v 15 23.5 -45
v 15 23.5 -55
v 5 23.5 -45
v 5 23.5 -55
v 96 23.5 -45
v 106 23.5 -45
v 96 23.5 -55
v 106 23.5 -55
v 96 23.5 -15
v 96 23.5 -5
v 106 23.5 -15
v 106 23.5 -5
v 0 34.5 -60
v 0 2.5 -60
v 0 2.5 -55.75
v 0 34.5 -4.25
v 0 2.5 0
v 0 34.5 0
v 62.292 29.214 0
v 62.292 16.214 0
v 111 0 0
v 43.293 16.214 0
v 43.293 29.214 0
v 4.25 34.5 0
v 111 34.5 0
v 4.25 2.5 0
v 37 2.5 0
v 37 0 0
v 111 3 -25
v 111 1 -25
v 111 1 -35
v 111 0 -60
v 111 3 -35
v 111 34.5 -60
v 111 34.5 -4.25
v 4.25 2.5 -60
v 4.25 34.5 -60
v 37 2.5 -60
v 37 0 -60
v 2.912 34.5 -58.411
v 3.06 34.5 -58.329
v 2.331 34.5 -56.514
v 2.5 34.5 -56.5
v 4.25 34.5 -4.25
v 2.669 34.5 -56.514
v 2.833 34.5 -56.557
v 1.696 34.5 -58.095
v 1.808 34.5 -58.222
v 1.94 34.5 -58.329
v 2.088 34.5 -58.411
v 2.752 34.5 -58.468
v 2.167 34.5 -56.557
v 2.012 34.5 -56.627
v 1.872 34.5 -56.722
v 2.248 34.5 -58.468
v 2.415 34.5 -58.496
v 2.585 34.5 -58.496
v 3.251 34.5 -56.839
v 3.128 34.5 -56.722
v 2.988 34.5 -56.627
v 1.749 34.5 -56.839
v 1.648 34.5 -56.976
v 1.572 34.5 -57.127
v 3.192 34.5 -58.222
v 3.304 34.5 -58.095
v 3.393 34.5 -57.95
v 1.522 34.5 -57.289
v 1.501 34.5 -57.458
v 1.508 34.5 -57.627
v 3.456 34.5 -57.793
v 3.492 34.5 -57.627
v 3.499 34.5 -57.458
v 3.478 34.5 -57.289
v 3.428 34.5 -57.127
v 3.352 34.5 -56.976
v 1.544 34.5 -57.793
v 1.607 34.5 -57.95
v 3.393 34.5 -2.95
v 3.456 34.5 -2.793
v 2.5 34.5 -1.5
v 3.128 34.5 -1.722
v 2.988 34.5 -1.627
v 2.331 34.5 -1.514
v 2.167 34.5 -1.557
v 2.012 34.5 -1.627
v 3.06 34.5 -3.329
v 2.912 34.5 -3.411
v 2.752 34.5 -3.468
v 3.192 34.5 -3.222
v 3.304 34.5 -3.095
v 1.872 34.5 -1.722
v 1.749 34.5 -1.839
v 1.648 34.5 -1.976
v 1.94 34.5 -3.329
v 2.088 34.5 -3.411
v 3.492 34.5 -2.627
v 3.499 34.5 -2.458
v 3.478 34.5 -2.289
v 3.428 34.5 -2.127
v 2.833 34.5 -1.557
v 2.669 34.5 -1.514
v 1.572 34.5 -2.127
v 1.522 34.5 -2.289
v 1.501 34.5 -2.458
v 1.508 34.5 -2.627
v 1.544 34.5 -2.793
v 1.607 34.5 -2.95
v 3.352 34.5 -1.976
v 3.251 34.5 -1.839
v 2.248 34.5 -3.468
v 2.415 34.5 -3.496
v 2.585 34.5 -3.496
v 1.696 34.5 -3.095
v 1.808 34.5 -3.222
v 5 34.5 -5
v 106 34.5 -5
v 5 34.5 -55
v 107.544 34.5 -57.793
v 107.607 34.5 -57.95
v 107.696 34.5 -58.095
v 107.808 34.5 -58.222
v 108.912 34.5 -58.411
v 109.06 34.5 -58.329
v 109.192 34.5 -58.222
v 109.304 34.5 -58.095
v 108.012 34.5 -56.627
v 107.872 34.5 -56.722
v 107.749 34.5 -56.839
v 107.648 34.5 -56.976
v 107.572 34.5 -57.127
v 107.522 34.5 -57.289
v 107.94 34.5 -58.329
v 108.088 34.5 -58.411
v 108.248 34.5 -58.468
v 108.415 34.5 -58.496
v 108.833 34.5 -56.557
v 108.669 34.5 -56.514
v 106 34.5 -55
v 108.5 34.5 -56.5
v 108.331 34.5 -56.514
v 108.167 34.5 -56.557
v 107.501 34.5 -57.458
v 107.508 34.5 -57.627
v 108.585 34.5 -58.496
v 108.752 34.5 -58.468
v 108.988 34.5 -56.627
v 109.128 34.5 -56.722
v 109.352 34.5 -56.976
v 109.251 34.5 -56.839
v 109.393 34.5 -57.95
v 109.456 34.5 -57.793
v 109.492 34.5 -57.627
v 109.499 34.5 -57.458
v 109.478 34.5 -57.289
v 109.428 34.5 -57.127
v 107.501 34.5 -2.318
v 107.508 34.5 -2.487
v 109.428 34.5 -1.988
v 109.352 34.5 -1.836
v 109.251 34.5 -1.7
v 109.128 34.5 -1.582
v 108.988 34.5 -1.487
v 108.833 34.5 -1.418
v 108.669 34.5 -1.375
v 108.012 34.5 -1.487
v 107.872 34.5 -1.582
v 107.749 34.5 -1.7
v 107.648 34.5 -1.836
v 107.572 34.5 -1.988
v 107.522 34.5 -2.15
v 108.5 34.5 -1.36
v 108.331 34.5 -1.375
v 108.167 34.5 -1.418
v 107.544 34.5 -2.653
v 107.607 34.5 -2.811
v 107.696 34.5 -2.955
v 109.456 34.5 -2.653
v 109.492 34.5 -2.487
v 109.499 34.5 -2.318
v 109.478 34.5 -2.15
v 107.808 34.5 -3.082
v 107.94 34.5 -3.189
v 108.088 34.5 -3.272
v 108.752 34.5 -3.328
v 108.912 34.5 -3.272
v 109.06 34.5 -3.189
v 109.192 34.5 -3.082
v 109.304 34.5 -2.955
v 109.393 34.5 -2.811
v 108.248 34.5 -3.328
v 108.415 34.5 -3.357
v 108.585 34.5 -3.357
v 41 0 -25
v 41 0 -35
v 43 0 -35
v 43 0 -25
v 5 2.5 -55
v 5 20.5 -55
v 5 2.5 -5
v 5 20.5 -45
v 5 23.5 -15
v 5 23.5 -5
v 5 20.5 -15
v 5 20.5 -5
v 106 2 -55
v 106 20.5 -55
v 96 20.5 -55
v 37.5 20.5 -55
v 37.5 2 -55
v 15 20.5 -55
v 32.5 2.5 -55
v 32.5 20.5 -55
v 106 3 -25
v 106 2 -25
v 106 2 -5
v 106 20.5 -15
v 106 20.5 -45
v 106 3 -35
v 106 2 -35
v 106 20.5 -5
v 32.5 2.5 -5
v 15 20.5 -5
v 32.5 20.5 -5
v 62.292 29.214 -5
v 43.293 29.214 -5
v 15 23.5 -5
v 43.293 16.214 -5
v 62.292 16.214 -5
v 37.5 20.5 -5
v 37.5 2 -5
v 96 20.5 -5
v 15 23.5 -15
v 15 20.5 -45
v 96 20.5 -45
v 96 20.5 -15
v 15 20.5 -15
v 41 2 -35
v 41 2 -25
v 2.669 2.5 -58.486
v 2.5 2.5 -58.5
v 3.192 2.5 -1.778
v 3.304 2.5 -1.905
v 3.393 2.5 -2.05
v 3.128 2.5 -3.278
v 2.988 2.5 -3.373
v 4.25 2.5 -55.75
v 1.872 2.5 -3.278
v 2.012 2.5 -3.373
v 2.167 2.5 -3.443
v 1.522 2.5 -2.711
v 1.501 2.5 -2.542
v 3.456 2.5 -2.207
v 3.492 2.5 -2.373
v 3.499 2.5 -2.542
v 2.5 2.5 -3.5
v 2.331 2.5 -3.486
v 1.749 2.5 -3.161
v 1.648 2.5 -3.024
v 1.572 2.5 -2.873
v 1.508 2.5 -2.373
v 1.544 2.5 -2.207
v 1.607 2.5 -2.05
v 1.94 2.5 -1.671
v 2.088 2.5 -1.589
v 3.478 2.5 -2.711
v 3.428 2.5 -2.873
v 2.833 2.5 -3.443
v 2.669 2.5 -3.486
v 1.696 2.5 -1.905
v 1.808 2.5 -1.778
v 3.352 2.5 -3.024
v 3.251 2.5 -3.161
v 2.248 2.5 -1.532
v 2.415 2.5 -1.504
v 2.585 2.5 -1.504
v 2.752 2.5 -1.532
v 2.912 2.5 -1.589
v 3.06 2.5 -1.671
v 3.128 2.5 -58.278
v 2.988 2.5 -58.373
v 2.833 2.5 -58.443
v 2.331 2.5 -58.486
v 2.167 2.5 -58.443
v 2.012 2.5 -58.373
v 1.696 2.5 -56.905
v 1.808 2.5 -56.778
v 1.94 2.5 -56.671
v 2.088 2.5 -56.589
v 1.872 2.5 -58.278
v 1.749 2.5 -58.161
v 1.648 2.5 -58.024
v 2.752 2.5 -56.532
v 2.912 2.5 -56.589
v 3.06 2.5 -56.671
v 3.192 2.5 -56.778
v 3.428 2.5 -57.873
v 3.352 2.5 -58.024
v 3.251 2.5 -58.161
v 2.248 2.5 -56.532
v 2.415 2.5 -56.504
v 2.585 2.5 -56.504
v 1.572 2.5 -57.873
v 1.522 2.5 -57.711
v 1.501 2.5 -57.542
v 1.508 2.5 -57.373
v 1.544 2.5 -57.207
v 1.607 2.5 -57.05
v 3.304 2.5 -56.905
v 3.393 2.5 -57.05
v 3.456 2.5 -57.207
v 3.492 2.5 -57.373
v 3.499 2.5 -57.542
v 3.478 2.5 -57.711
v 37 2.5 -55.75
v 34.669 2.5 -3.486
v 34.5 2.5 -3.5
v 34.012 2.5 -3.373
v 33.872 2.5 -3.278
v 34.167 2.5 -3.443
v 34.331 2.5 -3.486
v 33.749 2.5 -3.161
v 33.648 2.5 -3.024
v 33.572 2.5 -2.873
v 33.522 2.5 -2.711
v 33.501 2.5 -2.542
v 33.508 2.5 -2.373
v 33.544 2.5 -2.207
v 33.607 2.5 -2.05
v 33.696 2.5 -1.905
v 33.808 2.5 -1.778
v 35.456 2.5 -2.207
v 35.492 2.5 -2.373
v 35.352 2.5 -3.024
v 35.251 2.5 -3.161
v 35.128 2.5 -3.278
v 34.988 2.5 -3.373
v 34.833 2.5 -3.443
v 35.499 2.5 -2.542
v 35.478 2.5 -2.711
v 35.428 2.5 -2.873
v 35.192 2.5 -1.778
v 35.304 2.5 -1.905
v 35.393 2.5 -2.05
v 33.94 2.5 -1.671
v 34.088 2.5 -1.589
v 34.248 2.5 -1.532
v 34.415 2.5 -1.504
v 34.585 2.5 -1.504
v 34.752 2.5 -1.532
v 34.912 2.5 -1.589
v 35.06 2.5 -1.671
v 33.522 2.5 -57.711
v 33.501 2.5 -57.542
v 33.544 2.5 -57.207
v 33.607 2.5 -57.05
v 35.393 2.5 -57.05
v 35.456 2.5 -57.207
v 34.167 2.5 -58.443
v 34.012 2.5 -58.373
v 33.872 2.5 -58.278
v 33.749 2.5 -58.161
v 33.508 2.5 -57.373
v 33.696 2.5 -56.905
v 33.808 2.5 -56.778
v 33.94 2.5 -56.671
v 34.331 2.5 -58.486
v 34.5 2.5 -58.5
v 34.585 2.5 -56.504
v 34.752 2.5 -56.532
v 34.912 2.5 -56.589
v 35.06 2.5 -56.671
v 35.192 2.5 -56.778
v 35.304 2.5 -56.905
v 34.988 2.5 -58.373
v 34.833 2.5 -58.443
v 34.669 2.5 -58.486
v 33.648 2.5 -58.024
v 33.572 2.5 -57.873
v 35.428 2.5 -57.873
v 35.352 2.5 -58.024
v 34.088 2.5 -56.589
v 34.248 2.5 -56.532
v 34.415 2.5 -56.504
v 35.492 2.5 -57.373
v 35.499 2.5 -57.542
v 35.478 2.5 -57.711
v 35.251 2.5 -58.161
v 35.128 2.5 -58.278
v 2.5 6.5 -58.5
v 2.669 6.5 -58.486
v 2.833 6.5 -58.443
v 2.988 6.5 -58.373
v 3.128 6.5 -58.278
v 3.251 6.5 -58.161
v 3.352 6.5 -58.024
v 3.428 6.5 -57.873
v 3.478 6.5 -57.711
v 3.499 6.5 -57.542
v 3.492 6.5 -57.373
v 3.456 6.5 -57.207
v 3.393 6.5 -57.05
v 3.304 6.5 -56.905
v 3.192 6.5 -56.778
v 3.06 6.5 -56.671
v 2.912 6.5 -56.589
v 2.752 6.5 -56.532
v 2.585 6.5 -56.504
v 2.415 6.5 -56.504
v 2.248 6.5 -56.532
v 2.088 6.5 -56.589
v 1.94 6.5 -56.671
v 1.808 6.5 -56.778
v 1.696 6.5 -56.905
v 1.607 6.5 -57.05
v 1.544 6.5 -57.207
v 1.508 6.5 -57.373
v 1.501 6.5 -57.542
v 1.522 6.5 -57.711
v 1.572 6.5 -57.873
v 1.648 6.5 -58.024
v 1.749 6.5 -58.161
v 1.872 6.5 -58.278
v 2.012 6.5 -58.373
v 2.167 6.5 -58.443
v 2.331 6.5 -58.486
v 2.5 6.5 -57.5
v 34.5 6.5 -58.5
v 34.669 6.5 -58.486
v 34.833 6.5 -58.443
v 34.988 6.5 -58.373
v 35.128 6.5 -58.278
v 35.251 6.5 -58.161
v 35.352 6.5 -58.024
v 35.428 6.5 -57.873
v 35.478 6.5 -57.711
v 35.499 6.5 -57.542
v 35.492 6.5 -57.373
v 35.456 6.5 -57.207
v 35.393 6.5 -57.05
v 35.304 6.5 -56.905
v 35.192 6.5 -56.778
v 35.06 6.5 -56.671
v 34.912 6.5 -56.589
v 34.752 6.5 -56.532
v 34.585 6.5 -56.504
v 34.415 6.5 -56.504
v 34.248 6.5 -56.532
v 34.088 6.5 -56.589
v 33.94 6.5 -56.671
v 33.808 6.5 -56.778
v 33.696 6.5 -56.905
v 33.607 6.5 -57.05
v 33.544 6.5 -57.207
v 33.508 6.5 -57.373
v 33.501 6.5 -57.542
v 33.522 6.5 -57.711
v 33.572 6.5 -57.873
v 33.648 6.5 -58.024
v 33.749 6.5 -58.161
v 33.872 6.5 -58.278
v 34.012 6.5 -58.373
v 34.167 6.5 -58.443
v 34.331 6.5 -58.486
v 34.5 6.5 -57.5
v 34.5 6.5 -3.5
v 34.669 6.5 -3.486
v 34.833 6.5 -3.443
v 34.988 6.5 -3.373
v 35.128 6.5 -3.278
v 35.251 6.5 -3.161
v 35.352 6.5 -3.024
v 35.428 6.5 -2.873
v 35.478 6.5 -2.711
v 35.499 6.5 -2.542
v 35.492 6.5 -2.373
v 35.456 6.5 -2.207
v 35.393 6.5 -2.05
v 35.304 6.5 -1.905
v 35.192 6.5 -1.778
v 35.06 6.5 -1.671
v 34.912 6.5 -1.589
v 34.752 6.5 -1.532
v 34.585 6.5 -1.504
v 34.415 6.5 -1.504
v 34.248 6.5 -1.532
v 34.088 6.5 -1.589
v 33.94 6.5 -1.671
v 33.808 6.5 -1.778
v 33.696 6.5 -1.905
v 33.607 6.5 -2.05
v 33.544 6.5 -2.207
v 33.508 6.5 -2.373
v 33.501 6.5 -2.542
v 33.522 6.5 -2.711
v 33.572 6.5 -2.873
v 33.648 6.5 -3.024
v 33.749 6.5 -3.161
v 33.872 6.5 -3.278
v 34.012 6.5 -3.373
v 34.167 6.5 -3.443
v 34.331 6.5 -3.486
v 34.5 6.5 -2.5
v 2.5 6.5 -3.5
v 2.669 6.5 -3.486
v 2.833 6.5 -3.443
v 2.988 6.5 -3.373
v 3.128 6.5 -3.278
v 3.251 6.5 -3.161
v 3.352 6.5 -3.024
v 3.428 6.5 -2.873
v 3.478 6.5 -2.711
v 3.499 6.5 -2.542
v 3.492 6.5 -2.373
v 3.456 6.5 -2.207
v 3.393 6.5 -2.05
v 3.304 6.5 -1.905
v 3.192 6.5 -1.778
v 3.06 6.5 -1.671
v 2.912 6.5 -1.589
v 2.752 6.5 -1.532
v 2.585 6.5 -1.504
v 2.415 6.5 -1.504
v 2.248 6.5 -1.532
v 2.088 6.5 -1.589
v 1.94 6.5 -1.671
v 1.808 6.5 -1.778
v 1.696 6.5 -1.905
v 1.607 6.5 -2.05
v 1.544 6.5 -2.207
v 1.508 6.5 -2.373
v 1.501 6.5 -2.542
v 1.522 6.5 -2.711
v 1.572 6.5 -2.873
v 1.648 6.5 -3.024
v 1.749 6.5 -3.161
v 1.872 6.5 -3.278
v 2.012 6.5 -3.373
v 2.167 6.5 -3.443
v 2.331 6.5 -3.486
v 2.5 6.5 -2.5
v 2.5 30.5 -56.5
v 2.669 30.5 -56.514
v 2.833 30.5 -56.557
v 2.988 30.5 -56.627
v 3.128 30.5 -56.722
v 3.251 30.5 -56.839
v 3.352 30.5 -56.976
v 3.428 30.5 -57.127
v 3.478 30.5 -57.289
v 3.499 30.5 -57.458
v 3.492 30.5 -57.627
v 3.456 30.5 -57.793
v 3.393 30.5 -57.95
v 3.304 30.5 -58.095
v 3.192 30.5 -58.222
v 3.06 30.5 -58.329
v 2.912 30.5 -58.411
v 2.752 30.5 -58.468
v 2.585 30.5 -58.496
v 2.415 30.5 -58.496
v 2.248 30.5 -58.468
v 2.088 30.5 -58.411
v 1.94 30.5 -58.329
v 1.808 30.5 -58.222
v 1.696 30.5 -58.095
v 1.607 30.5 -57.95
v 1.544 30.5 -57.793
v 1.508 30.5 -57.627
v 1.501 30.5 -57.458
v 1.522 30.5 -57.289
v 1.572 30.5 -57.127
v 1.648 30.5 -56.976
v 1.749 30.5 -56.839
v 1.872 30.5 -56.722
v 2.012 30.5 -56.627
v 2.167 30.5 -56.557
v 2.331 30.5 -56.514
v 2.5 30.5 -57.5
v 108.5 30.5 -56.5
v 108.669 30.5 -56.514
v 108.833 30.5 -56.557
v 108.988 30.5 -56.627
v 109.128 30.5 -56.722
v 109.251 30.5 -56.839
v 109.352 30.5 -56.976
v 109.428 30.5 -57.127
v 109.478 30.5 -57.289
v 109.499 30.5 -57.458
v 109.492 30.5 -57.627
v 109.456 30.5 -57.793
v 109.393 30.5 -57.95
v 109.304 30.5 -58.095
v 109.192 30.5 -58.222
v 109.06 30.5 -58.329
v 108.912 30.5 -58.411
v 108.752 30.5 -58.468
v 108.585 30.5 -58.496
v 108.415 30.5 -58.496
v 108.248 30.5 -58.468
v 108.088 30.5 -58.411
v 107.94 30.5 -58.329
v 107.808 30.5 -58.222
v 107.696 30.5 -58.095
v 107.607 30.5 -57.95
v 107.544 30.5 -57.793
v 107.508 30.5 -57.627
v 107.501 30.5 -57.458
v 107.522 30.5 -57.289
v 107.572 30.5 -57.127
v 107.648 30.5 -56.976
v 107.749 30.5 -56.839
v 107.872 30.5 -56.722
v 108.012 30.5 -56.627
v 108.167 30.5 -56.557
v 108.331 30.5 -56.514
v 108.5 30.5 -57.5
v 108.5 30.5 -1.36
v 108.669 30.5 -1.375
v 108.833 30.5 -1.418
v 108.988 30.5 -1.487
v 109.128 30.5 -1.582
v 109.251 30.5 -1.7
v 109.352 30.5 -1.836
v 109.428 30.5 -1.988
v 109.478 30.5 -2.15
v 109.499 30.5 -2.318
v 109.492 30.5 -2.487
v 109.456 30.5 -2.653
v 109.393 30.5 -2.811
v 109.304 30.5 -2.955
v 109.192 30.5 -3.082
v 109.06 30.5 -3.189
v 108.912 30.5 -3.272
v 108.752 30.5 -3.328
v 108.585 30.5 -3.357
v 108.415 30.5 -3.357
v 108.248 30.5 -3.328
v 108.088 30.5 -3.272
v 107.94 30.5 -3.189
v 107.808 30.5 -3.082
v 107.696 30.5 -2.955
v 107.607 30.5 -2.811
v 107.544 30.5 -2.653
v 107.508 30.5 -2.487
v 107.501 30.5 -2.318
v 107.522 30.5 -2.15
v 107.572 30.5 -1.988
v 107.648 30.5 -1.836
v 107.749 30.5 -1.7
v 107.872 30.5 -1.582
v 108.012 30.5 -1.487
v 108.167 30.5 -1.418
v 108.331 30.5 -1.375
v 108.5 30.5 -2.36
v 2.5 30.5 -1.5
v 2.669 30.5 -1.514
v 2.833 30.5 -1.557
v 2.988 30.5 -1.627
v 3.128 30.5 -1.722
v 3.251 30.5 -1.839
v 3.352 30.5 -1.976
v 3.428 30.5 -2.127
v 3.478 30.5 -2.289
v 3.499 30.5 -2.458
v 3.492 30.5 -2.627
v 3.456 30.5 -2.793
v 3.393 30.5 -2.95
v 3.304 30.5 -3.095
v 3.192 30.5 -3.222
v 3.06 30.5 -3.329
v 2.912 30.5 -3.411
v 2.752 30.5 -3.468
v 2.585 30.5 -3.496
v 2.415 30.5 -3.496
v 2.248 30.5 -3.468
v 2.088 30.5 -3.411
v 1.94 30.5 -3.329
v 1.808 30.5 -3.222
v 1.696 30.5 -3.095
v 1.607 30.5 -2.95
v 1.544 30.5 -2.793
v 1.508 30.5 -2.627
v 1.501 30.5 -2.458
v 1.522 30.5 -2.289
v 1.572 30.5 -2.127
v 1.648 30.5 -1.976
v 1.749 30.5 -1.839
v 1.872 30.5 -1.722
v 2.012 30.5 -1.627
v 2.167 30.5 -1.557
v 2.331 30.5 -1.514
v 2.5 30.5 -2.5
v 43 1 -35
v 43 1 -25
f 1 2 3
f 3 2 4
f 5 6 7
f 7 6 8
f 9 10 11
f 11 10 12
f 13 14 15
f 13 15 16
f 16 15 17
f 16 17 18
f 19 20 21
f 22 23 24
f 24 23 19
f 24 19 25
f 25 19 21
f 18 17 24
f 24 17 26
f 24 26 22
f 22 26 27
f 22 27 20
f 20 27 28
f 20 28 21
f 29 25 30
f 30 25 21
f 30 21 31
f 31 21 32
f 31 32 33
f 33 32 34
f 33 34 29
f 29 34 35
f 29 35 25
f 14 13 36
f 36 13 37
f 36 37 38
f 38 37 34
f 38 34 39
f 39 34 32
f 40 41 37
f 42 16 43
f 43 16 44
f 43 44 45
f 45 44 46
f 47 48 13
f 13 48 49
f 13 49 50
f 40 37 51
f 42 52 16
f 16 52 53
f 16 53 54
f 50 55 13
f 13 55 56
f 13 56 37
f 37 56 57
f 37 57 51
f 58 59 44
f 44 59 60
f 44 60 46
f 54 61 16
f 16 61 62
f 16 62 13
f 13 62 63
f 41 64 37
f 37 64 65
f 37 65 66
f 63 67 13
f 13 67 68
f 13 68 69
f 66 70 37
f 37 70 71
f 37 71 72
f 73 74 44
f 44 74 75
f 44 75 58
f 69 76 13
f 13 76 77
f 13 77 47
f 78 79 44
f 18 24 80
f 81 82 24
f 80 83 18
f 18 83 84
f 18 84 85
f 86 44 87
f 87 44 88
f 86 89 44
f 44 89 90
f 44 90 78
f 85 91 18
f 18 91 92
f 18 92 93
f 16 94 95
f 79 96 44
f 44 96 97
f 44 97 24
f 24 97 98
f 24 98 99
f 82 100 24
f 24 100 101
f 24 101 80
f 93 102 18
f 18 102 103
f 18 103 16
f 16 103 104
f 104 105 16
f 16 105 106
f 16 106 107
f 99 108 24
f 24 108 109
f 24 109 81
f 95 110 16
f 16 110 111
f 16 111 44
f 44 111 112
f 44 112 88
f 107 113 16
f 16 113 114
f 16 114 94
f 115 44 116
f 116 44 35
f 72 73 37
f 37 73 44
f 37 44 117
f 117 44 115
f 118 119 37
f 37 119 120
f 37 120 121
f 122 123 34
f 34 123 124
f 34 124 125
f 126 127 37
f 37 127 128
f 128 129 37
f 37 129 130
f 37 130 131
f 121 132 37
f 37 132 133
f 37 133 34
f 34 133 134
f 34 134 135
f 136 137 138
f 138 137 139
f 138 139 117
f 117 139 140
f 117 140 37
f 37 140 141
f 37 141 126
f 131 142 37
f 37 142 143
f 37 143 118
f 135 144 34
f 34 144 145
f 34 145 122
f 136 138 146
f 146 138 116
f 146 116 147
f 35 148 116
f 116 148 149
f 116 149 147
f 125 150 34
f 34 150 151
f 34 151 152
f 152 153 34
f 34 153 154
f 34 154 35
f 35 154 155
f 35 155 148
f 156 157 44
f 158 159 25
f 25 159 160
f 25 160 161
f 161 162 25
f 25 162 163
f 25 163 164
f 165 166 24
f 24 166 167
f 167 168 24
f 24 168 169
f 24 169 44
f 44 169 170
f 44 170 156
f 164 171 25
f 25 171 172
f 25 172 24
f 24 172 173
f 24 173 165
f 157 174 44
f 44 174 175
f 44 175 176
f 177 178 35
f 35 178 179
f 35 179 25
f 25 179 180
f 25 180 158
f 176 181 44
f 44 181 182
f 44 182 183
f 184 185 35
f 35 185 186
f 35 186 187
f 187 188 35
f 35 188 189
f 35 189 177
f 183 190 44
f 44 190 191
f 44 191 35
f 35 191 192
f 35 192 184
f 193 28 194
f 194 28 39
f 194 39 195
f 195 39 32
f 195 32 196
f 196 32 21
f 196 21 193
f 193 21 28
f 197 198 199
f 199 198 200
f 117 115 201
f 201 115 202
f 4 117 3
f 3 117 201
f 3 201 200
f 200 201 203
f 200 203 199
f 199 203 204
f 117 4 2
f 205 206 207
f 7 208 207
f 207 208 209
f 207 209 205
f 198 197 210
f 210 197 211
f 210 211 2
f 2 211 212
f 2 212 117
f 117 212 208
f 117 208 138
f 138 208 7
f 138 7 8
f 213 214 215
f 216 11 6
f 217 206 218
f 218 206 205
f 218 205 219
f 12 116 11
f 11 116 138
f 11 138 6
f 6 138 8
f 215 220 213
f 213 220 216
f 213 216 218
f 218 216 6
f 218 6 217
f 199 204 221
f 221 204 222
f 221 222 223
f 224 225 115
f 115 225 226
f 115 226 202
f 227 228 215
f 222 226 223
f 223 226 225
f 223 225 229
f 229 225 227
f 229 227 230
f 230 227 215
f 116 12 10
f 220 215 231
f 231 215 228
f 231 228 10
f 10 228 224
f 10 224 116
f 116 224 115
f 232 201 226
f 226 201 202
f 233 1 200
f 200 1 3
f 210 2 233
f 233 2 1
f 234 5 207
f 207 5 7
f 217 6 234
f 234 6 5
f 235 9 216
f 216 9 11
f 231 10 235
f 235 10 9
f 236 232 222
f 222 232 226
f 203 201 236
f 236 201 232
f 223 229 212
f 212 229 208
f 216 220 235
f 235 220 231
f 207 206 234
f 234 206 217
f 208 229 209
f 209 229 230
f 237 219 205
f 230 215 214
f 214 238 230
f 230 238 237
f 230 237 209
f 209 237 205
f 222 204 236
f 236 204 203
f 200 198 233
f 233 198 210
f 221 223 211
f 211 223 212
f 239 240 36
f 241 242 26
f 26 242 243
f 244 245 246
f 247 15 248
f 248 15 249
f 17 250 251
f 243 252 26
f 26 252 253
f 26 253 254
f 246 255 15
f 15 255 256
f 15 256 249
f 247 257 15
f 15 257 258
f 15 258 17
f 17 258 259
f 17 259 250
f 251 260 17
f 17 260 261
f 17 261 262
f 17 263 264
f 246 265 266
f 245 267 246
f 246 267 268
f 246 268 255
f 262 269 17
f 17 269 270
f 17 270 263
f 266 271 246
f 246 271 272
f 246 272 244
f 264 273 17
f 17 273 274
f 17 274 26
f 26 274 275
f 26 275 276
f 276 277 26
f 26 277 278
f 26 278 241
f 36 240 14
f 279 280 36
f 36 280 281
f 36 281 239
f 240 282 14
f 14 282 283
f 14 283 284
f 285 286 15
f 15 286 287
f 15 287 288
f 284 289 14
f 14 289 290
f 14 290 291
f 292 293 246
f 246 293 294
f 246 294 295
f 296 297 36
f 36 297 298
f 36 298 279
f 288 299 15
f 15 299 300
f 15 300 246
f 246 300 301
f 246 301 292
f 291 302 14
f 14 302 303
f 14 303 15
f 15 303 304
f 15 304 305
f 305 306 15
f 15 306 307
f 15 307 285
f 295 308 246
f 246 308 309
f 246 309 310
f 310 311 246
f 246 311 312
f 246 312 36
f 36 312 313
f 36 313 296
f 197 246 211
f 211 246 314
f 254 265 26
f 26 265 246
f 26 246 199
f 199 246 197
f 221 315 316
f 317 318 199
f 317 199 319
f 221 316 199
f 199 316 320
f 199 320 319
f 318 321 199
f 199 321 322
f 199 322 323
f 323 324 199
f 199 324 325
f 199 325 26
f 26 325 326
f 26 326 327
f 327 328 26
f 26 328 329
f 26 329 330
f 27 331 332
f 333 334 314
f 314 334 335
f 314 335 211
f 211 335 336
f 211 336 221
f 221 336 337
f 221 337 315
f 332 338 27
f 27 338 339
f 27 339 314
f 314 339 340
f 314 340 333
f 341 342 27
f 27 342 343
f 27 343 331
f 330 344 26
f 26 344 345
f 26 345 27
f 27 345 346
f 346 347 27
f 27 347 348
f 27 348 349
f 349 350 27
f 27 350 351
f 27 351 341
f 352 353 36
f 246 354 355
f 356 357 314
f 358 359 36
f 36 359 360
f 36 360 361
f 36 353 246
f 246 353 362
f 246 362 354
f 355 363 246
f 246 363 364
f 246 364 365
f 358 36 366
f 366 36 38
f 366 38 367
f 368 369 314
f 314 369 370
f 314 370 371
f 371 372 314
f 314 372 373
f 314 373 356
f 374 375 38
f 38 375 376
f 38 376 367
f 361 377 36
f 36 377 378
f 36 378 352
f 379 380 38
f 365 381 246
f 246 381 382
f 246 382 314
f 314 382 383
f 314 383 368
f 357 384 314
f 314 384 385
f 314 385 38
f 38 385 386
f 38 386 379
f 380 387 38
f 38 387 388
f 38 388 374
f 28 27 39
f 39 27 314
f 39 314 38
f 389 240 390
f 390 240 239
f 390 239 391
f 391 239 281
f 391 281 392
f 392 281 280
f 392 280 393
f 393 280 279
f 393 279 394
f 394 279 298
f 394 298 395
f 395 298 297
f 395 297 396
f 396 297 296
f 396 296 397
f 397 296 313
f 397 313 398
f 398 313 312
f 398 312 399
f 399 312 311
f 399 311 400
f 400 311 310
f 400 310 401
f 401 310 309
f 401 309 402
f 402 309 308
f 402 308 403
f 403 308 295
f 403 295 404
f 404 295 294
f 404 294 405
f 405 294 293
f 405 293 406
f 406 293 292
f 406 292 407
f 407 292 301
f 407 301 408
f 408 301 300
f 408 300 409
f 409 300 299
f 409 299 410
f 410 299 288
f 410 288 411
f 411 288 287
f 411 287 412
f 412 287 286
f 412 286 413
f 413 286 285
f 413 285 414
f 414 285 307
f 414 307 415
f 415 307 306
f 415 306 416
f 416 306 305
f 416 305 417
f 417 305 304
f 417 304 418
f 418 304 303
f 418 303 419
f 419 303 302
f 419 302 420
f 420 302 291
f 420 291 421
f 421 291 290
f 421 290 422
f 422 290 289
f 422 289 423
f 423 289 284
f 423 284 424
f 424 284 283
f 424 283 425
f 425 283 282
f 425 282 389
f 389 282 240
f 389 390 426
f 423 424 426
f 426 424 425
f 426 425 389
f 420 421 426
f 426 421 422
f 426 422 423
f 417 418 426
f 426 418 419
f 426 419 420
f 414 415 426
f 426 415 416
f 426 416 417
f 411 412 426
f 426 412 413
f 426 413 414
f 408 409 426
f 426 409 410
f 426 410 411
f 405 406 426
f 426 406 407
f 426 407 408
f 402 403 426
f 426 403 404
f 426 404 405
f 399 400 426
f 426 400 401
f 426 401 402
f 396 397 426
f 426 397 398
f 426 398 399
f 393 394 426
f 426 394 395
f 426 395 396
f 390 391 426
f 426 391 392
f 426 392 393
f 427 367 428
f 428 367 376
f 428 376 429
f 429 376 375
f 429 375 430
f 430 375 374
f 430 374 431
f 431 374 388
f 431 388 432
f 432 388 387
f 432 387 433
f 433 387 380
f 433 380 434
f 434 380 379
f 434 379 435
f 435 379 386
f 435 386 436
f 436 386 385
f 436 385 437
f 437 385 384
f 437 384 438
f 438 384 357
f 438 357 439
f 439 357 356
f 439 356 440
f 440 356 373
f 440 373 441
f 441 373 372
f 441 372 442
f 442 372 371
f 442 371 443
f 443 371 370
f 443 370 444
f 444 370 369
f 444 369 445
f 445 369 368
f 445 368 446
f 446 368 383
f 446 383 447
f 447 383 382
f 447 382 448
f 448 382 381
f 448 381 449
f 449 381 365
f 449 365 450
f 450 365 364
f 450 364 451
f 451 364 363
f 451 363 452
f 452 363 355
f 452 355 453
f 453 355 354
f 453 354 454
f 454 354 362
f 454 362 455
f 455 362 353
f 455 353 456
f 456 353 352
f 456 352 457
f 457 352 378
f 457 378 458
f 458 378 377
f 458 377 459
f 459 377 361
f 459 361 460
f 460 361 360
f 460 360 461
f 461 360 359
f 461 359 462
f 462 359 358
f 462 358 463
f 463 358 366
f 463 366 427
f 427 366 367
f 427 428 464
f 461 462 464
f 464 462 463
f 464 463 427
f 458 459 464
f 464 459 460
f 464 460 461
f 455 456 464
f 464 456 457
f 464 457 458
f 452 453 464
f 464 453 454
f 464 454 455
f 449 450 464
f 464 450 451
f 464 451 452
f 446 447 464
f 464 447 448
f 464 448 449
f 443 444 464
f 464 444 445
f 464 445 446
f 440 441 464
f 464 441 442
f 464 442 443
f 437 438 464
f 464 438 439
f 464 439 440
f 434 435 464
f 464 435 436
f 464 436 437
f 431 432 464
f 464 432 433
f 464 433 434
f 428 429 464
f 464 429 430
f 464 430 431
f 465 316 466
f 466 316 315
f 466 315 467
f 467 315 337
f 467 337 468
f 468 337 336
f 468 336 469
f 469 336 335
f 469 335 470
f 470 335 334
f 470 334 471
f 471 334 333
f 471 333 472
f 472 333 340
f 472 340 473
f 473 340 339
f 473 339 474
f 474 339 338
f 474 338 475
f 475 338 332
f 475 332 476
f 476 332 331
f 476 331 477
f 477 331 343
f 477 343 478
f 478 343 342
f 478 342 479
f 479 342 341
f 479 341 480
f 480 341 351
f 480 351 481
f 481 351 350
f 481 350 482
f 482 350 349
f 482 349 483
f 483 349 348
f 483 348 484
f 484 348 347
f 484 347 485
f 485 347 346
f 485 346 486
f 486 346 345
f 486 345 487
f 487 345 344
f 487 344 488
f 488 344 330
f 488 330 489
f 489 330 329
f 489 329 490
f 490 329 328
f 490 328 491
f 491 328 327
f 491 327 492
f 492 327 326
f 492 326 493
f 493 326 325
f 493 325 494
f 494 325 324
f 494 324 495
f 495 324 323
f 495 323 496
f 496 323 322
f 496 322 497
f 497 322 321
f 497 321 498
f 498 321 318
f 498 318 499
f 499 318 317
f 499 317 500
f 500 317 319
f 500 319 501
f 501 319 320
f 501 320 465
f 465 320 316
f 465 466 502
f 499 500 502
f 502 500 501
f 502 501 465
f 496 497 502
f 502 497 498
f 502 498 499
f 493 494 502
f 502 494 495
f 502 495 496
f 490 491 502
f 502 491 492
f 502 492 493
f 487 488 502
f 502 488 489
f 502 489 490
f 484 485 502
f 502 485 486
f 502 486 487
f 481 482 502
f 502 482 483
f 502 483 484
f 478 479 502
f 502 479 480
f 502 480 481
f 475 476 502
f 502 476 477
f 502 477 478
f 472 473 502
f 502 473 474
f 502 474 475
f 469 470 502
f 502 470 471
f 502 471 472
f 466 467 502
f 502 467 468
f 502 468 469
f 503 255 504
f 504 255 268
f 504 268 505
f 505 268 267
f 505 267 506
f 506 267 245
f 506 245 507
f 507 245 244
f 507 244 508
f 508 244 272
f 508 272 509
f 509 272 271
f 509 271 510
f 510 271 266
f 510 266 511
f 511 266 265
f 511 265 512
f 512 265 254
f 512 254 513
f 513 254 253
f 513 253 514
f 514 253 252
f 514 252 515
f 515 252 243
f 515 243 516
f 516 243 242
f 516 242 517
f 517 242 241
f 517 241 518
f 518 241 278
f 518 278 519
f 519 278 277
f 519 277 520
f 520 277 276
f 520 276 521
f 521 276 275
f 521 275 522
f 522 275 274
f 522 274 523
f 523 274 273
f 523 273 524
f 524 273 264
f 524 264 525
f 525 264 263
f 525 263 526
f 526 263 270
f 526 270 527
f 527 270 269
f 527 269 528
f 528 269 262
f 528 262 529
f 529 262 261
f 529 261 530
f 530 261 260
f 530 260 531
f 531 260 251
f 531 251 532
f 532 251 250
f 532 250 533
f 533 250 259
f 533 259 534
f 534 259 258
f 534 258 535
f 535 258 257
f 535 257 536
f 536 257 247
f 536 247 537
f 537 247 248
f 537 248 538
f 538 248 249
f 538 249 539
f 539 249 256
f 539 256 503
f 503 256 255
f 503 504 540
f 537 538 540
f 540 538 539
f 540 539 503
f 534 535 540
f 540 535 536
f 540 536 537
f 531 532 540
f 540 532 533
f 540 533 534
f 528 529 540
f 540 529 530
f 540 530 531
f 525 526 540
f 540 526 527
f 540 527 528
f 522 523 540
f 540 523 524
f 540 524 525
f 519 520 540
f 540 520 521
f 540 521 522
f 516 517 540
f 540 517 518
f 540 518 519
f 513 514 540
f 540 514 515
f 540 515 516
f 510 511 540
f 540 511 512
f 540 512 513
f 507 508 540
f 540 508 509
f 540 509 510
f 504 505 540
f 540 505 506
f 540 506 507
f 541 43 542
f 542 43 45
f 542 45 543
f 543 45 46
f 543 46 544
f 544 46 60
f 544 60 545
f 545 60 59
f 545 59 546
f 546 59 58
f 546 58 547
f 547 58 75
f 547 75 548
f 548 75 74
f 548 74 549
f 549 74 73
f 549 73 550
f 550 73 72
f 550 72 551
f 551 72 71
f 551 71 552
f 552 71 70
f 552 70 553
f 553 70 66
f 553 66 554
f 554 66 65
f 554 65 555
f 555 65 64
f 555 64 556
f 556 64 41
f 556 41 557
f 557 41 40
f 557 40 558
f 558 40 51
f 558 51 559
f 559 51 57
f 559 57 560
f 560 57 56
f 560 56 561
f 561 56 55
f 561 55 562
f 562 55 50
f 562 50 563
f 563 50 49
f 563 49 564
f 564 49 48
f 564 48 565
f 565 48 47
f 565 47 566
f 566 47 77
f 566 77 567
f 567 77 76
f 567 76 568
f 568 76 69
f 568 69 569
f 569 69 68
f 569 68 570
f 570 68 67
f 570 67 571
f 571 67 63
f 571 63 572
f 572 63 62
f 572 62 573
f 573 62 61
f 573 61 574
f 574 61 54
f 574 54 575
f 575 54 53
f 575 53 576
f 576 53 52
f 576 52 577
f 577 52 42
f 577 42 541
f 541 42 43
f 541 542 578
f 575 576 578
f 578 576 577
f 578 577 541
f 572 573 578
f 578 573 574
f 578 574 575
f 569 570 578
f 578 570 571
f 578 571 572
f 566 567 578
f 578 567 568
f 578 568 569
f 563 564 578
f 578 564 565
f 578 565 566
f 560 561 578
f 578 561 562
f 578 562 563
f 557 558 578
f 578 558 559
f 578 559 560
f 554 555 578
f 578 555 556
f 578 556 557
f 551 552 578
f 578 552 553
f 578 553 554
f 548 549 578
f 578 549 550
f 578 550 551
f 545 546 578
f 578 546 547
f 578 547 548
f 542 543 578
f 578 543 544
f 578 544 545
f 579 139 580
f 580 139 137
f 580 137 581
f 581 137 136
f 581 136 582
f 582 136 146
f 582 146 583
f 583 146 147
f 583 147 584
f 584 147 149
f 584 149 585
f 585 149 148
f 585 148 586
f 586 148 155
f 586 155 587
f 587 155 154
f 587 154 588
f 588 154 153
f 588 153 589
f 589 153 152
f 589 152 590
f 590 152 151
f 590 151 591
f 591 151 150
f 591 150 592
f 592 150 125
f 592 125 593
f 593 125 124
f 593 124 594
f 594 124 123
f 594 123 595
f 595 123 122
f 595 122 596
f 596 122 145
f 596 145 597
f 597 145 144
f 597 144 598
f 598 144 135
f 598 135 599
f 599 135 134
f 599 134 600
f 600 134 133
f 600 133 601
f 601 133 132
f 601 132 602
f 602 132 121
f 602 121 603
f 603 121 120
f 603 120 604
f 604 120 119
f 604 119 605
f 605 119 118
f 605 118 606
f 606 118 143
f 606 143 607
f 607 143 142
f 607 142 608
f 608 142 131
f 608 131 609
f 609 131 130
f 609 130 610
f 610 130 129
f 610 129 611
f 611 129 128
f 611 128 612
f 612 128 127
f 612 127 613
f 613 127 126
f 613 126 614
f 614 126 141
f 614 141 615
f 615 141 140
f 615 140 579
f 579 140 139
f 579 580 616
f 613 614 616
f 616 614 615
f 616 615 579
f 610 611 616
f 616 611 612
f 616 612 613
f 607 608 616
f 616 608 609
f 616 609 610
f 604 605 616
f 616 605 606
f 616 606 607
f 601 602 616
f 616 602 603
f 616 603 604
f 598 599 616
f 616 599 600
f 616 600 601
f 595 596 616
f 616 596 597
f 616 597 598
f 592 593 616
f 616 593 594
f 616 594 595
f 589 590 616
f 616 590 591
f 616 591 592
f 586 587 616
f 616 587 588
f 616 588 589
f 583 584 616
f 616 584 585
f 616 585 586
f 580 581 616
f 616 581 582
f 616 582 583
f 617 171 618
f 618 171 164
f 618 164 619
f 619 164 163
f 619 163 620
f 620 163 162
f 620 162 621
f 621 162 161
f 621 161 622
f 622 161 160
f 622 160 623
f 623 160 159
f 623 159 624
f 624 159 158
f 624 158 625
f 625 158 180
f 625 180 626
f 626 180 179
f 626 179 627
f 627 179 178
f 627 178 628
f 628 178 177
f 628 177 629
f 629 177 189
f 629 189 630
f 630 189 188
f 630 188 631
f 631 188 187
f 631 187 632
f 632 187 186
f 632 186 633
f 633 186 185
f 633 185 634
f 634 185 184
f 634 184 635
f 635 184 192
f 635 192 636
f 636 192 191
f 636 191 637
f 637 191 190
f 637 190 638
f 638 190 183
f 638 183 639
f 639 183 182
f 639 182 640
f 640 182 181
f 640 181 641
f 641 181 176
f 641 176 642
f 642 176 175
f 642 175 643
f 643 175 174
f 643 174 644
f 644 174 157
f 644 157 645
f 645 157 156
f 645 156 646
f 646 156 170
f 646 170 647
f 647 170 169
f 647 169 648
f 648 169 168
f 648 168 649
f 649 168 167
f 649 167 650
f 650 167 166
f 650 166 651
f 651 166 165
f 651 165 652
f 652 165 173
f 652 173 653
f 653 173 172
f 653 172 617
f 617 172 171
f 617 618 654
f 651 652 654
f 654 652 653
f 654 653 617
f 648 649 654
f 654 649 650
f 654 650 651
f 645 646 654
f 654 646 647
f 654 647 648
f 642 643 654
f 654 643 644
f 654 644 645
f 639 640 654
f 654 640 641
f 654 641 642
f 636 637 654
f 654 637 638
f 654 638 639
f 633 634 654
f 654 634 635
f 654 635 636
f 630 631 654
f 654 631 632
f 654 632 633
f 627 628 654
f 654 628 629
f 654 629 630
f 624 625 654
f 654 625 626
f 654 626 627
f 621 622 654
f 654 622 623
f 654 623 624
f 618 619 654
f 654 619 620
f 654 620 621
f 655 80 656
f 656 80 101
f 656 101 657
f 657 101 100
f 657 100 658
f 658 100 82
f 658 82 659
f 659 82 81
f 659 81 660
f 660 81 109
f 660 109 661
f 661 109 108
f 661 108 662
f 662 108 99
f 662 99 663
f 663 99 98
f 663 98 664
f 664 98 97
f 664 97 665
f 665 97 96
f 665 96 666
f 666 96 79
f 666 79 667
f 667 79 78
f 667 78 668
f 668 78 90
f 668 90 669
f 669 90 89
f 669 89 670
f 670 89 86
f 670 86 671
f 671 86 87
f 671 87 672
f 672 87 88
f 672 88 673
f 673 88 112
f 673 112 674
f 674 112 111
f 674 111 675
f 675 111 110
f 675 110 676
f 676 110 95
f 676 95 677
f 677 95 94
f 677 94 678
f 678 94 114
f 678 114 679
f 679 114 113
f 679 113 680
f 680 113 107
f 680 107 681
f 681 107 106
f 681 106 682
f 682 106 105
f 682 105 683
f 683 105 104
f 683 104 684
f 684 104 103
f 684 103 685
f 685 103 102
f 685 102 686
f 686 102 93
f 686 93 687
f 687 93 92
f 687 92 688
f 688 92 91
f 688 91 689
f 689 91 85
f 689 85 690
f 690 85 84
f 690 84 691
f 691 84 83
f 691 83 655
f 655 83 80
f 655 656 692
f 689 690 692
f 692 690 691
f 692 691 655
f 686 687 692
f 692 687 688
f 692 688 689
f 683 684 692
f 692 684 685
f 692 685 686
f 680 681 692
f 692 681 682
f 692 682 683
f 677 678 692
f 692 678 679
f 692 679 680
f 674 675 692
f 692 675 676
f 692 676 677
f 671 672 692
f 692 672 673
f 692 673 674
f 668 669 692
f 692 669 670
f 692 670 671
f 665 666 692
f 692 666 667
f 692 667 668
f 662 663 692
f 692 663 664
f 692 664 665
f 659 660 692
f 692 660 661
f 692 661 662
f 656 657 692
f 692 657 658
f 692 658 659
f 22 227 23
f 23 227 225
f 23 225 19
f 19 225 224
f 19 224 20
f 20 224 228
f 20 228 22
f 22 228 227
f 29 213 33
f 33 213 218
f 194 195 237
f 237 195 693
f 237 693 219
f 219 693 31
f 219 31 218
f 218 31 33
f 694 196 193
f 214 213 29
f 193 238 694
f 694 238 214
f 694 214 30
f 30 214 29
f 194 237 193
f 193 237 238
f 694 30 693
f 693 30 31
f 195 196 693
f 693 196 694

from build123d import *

# Parameters (mm, degrees)
SKETCH1_W           = 111
SKETCH1_H           = 60
BOSS_EXTRUDE1_DEPTH = 34.5
SKETCH2_W           = 101
SKETCH2_H           = 50
CUT_EXTRUDE1_DEPTH  = 11
CUT_EXTRUDE3_DEPTH  = 14
CUT_EXTRUDE5_START  = -2
SKETCH5_W           = 27.5
SKETCH5_H           = 50
SKETCH5_W_2         = 68.5
CUT_EXTRUDE5_DEPTH  = 18.5
SKETCH6_W           = 37
SKETCH6_H           = 60
CUT_EXTRUDE6_DEPTH  = 2.5
SKETCH7_R           = 1
CUT_EXTRUDE7_DEPTH  = 4
SKETCH8_R           = 1
CUT_EXTRUDE8_DEPTH  = 4
SKETCH9_W           = 19
SKETCH9_H           = 13
CUT_EXTRUDE9_DEPTH  = 10
SKETCH10_W          = 10
SKETCH10_H          = 2
CUT_EXTRUDE10_DEPTH = 70
SKETCH11_W          = 2
SKETCH11_H          = 10
CUT_EXTRUDE11_DEPTH = 2


with BuildPart() as part:
    # Sketch1 → Boss-Extrude1 (new body)
    with BuildSketch(Plane(origin=(0, 0, 0), x_dir=(1, 0, 0), z_dir=(0, 1, 0))):
        with Locations((55.5, 30)):
            Rectangle(SKETCH1_W, SKETCH1_H)
    extrude(amount=BOSS_EXTRUDE1_DEPTH)

    # Sketch2 → Cut-Extrude1 (cut)
    with BuildSketch(Plane(origin=(0, 34.5, 0), x_dir=(1, 0, 0), z_dir=(0, 1, 0))):
        with Locations((55.5, 30)):
            Rectangle(SKETCH2_W, SKETCH2_H)
    extrude(amount=-CUT_EXTRUDE1_DEPTH, mode=Mode.SUBTRACT)

    # Sketch3 → Cut-Extrude3 (cut)
    with BuildSketch(Plane(origin=(0, 34.5, 0), x_dir=(1, 0, 0), z_dir=(0, 1, 0))):
        Polygon((5, 45), (15, 45), (15, 55), (96, 55), (96, 45), (106, 45), (106, 15), (96, 15), (96, 5), (15, 5), (15, 15), (5, 15), align=None)
    extrude(amount=-CUT_EXTRUDE3_DEPTH, mode=Mode.SUBTRACT)

    # Sketch5 → Cut-Extrude5 (cut)
    with BuildSketch(Plane.XZ.offset(CUT_EXTRUDE5_START)):
        with Locations((18.75, -30)):
            Rectangle(SKETCH5_W, SKETCH5_H)
        with Locations((71.75, -30)):
            Rectangle(SKETCH5_W_2, SKETCH5_H)
    extrude(amount=-CUT_EXTRUDE5_DEPTH, mode=Mode.SUBTRACT)

    # Sketch6 → Cut-Extrude6 (cut)
    with BuildSketch(Plane.XZ):
        with Locations((18.5, -30)):
            Rectangle(SKETCH6_W, SKETCH6_H)
    extrude(amount=-CUT_EXTRUDE6_DEPTH, mode=Mode.SUBTRACT)

    # Sketch7 → Cut-Extrude7 (cut)
    with BuildSketch(Plane(origin=(0, 2.5, 0), x_dir=(-1, 0, 0), z_dir=(0, -1, 0))):
        with Locations((-2.5, 57.5)):
            Circle(SKETCH7_R)
        with Locations((-34.5, 57.5)):
            Circle(SKETCH7_R)
        with Locations((-34.5, 2.5)):
            Circle(SKETCH7_R)
        with Locations((-2.5, 2.5)):
            Circle(SKETCH7_R)
    extrude(amount=-CUT_EXTRUDE7_DEPTH, mode=Mode.SUBTRACT)

    # Sketch8 → Cut-Extrude8 (cut)
    with BuildSketch(Plane(origin=(0, 34.5, 0), x_dir=(1, 0, 0), z_dir=(0, 1, 0))):
        with Locations((2.5, 57.5)):
            Circle(SKETCH8_R)
        with Locations((108.5, 57.5)):
            Circle(SKETCH8_R)
        with Locations((108.5, 2.360383006)):
            Circle(SKETCH8_R)
        with Locations((2.5, 2.5)):
            Circle(SKETCH8_R)
    extrude(amount=-CUT_EXTRUDE8_DEPTH, mode=Mode.SUBTRACT)

    # Sketch9 → Cut-Extrude9 (cut)
    with BuildSketch(Plane.XY):
        with Locations((52.792502494, 22.713514363)):
            Rectangle(SKETCH9_W, SKETCH9_H)
    extrude(amount=-CUT_EXTRUDE9_DEPTH, mode=Mode.SUBTRACT)

    # Sketch10 → Cut-Extrude10 (cut)
    with BuildSketch(Plane(origin=(111, 0, 0), x_dir=(0, 0, -1), z_dir=(1, 0, 0))):
        with Locations((30, 2)):
            Rectangle(SKETCH10_W, SKETCH10_H)
    extrude(amount=-CUT_EXTRUDE10_DEPTH, mode=Mode.SUBTRACT)

    # Sketch11 → Cut-Extrude11 (cut, through all)
    with BuildSketch(Plane(origin=(0, 1, 0), x_dir=(1, 0, 0), z_dir=(0, 1, 0))):
        with Locations((42, 30)):
            Rectangle(SKETCH11_W, SKETCH11_H)
    extrude(amount=-CUT_EXTRUDE11_DEPTH, mode=Mode.SUBTRACT)


solid = part.part
